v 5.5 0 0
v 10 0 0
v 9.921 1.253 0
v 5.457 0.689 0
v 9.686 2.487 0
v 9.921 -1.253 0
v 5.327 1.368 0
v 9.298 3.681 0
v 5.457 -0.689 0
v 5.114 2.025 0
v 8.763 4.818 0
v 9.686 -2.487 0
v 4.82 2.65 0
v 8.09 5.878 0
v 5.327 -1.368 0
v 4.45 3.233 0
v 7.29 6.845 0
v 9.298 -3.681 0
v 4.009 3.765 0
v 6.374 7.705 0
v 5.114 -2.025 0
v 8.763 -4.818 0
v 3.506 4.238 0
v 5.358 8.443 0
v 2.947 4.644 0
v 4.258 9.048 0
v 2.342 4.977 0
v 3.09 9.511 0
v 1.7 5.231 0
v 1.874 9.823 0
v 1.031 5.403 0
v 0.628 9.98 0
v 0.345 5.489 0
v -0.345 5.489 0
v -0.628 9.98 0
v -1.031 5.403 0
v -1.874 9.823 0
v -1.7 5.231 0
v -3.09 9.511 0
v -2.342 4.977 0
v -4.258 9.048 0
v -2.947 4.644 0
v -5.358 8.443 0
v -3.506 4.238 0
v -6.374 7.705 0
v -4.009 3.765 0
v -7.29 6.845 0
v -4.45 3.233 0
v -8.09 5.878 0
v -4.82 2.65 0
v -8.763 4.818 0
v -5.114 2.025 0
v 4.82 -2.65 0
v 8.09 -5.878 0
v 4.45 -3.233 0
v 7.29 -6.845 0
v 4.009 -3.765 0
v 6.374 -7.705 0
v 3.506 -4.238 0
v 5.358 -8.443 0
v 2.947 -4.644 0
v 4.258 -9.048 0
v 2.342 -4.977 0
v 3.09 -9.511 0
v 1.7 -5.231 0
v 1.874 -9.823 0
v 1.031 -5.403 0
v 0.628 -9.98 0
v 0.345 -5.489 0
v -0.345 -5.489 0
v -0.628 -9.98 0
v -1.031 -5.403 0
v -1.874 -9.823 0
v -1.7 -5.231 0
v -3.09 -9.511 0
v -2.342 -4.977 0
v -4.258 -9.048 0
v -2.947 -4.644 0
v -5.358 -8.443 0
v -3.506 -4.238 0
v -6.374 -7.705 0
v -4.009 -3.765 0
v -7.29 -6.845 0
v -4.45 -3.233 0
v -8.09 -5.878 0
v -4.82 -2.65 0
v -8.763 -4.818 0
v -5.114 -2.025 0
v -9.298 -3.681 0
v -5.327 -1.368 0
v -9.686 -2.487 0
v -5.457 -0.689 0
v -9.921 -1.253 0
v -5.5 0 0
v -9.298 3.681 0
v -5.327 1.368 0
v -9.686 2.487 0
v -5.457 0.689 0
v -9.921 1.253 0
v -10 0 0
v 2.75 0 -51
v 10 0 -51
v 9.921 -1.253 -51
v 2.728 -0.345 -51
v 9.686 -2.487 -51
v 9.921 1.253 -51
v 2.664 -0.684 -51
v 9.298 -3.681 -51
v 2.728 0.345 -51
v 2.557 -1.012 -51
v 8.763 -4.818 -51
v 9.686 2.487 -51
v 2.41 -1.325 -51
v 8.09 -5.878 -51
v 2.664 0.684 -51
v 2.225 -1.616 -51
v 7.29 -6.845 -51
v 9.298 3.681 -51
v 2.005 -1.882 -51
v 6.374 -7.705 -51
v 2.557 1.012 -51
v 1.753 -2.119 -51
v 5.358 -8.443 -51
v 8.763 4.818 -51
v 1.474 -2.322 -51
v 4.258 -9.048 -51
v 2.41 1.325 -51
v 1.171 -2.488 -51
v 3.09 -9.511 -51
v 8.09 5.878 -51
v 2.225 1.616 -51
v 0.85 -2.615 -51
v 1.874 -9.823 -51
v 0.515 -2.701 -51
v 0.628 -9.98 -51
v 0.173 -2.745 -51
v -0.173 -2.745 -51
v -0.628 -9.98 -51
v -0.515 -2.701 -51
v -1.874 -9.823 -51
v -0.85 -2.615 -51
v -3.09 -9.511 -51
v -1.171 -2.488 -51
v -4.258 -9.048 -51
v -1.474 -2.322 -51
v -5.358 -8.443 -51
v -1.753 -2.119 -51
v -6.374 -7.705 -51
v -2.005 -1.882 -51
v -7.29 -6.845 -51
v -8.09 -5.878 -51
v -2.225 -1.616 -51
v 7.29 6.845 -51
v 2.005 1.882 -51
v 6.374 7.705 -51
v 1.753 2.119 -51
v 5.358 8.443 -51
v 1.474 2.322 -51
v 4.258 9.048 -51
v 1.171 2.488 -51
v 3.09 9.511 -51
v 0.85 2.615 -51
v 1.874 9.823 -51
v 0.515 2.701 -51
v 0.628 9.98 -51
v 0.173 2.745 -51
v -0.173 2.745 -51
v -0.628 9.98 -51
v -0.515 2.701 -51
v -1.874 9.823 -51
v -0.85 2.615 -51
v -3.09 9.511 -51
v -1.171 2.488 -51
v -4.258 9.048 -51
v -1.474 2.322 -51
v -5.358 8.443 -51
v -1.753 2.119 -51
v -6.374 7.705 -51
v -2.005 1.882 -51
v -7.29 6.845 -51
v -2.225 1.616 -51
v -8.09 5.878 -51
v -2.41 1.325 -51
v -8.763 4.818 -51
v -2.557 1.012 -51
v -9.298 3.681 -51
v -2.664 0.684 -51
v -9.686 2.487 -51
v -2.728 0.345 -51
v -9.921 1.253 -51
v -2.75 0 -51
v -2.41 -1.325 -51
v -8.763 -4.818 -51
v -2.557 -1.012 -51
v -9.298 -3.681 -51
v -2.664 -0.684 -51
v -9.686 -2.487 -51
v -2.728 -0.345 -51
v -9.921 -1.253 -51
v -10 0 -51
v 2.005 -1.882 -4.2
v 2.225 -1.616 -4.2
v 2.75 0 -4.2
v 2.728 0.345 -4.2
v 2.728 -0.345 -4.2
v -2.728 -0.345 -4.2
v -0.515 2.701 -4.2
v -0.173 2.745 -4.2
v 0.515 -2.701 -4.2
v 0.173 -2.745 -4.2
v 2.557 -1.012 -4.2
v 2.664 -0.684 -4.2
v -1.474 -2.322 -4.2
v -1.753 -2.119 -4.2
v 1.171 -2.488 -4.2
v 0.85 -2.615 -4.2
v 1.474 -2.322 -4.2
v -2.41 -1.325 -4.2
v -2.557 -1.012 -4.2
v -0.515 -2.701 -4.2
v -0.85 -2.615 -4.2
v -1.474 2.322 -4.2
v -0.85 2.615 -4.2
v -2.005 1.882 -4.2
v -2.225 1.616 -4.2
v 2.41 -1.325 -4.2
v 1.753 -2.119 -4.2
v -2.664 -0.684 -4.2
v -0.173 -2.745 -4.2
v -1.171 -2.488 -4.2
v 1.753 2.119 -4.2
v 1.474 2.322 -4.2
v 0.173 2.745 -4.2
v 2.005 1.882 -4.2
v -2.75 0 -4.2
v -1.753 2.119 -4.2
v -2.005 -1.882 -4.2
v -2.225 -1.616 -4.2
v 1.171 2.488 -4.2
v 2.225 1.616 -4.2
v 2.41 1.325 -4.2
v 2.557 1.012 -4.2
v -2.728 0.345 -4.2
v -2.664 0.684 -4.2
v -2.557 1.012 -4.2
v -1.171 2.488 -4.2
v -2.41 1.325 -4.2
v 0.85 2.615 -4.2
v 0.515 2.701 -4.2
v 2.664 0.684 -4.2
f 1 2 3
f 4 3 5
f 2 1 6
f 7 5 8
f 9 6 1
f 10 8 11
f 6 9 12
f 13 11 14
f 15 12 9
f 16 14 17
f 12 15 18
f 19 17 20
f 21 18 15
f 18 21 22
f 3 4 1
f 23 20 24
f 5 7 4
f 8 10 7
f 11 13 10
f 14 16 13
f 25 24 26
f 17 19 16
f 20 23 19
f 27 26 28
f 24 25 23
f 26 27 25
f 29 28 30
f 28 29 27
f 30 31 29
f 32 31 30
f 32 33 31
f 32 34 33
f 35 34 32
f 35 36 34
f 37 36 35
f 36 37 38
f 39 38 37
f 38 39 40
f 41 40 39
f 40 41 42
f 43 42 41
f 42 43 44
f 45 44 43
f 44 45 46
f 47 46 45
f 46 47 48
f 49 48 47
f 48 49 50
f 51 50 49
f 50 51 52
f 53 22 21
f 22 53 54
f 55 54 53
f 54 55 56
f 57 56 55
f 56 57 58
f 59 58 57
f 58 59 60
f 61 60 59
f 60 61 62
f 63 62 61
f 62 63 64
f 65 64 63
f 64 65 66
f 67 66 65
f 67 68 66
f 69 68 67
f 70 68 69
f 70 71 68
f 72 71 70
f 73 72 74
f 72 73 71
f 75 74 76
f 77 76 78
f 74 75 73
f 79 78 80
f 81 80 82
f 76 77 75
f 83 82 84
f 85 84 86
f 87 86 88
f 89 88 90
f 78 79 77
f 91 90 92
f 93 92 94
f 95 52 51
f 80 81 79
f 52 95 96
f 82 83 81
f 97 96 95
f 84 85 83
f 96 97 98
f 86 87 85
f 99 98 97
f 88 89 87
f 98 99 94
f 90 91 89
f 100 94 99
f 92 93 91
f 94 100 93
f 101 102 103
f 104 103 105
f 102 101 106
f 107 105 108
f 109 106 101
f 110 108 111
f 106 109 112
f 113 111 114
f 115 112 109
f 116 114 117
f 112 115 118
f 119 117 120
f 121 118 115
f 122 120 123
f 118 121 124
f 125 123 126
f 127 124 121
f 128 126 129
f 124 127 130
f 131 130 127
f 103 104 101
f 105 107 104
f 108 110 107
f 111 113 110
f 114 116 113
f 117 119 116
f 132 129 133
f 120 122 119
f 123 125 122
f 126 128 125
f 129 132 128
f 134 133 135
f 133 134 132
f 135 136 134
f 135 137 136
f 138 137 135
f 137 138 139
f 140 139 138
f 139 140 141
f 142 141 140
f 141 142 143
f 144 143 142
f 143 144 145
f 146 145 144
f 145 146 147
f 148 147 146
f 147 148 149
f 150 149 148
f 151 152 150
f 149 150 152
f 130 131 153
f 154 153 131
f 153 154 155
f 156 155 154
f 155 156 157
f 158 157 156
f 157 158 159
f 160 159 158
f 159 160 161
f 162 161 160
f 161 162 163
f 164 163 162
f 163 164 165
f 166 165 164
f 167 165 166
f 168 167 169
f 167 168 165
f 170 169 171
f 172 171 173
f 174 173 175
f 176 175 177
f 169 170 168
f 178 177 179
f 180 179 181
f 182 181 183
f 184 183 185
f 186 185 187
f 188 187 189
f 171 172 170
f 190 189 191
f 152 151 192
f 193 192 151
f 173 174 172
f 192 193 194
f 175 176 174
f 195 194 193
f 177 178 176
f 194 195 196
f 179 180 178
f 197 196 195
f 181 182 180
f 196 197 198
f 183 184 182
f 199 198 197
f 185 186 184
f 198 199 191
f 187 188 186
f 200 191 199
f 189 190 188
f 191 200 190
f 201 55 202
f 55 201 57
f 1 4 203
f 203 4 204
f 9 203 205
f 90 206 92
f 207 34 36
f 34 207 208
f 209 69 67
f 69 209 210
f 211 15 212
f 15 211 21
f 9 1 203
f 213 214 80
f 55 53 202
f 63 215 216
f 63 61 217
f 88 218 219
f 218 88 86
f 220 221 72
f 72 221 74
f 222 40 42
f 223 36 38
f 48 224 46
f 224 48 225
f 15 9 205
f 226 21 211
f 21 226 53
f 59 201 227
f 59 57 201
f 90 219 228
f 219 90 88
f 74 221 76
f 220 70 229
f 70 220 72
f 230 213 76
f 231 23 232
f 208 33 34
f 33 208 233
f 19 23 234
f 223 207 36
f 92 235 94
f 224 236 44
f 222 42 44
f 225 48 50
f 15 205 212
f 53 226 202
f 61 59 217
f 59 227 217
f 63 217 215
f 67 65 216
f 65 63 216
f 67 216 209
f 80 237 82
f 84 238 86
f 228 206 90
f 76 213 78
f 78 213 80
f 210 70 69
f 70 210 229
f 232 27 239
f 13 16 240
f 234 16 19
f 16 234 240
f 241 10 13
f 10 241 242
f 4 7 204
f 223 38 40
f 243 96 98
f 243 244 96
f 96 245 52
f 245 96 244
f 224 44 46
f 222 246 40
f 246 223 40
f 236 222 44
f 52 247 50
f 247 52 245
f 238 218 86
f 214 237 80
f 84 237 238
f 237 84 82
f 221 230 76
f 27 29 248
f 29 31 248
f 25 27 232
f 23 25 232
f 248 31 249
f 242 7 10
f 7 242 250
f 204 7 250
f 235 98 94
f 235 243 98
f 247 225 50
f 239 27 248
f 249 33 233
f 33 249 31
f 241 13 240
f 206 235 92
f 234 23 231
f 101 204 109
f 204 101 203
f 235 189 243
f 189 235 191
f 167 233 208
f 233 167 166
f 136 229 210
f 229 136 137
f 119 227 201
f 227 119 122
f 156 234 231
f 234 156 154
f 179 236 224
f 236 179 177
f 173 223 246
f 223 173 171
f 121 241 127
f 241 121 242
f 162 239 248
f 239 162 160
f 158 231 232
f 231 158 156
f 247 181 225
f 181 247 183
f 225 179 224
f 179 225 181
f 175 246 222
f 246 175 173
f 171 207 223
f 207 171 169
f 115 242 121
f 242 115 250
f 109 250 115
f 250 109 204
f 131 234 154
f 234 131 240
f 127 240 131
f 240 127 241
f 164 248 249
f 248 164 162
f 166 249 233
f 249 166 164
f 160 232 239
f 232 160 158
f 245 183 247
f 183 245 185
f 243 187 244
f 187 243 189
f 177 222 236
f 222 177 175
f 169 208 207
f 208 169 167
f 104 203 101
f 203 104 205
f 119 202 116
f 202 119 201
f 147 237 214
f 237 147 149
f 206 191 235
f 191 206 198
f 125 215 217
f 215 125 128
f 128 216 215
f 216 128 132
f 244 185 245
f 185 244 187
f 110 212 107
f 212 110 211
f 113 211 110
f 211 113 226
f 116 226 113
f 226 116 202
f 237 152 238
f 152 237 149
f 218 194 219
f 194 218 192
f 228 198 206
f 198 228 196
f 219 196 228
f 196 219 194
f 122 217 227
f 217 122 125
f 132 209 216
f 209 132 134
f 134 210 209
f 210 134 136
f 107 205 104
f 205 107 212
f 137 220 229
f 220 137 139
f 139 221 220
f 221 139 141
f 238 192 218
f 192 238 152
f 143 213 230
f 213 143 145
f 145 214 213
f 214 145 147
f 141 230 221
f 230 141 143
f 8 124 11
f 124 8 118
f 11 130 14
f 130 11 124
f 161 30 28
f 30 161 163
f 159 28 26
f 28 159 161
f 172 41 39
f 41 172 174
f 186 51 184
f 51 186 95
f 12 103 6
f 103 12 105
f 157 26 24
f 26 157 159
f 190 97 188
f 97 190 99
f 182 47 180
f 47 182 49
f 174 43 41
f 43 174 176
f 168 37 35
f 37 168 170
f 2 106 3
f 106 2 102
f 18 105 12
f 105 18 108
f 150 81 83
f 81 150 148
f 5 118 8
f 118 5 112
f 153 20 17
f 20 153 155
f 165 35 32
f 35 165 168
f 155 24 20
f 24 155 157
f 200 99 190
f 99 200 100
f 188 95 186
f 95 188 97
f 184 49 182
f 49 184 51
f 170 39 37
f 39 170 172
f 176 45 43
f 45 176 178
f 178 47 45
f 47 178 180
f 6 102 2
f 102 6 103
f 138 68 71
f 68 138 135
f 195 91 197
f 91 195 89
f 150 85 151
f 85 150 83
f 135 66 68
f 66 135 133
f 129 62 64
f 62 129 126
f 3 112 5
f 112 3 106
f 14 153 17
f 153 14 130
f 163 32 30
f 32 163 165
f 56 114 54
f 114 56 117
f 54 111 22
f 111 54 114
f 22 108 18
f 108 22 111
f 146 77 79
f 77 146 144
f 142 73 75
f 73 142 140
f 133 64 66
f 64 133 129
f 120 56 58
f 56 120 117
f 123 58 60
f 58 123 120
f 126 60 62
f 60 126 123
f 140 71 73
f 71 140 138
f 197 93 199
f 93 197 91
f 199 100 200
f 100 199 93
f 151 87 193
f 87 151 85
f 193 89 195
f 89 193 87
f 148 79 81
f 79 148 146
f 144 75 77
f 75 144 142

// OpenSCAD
$fn = 50;


difference() {
	union() {
		translate(v = [0, 0, -51.0000000000]) {
			cylinder(h = 51, r = 10.0000000000);
		}
		cylinder(h = 0, r = 16.0000000000);
	}
	union() {
		translate(v = [0, 0, 0]) {
			rotate(a = [0, 0, 0]) {
				difference() {
					union() {
						#translate(v = [0, 0, -51.0000000000]) {
							cylinder(h = 51, r = 2.2500000000);
						}
						#translate(v = [0, 0, -4.2000000000]) {
							cylinder(h = 4.2000000000, r1 = 2.7500000000, r2 = 5.5000000000);
						}
						#translate(v = [0, 0, -51.0000000000]) {
							cylinder(h = 51, r = 2.7500000000);
						}
						#translate(v = [0, 0, -51.0000000000]) {
							cylinder(h = 51, r = 2.2500000000);
						}
					}
					union();
				}
			}
		}
	}
}
